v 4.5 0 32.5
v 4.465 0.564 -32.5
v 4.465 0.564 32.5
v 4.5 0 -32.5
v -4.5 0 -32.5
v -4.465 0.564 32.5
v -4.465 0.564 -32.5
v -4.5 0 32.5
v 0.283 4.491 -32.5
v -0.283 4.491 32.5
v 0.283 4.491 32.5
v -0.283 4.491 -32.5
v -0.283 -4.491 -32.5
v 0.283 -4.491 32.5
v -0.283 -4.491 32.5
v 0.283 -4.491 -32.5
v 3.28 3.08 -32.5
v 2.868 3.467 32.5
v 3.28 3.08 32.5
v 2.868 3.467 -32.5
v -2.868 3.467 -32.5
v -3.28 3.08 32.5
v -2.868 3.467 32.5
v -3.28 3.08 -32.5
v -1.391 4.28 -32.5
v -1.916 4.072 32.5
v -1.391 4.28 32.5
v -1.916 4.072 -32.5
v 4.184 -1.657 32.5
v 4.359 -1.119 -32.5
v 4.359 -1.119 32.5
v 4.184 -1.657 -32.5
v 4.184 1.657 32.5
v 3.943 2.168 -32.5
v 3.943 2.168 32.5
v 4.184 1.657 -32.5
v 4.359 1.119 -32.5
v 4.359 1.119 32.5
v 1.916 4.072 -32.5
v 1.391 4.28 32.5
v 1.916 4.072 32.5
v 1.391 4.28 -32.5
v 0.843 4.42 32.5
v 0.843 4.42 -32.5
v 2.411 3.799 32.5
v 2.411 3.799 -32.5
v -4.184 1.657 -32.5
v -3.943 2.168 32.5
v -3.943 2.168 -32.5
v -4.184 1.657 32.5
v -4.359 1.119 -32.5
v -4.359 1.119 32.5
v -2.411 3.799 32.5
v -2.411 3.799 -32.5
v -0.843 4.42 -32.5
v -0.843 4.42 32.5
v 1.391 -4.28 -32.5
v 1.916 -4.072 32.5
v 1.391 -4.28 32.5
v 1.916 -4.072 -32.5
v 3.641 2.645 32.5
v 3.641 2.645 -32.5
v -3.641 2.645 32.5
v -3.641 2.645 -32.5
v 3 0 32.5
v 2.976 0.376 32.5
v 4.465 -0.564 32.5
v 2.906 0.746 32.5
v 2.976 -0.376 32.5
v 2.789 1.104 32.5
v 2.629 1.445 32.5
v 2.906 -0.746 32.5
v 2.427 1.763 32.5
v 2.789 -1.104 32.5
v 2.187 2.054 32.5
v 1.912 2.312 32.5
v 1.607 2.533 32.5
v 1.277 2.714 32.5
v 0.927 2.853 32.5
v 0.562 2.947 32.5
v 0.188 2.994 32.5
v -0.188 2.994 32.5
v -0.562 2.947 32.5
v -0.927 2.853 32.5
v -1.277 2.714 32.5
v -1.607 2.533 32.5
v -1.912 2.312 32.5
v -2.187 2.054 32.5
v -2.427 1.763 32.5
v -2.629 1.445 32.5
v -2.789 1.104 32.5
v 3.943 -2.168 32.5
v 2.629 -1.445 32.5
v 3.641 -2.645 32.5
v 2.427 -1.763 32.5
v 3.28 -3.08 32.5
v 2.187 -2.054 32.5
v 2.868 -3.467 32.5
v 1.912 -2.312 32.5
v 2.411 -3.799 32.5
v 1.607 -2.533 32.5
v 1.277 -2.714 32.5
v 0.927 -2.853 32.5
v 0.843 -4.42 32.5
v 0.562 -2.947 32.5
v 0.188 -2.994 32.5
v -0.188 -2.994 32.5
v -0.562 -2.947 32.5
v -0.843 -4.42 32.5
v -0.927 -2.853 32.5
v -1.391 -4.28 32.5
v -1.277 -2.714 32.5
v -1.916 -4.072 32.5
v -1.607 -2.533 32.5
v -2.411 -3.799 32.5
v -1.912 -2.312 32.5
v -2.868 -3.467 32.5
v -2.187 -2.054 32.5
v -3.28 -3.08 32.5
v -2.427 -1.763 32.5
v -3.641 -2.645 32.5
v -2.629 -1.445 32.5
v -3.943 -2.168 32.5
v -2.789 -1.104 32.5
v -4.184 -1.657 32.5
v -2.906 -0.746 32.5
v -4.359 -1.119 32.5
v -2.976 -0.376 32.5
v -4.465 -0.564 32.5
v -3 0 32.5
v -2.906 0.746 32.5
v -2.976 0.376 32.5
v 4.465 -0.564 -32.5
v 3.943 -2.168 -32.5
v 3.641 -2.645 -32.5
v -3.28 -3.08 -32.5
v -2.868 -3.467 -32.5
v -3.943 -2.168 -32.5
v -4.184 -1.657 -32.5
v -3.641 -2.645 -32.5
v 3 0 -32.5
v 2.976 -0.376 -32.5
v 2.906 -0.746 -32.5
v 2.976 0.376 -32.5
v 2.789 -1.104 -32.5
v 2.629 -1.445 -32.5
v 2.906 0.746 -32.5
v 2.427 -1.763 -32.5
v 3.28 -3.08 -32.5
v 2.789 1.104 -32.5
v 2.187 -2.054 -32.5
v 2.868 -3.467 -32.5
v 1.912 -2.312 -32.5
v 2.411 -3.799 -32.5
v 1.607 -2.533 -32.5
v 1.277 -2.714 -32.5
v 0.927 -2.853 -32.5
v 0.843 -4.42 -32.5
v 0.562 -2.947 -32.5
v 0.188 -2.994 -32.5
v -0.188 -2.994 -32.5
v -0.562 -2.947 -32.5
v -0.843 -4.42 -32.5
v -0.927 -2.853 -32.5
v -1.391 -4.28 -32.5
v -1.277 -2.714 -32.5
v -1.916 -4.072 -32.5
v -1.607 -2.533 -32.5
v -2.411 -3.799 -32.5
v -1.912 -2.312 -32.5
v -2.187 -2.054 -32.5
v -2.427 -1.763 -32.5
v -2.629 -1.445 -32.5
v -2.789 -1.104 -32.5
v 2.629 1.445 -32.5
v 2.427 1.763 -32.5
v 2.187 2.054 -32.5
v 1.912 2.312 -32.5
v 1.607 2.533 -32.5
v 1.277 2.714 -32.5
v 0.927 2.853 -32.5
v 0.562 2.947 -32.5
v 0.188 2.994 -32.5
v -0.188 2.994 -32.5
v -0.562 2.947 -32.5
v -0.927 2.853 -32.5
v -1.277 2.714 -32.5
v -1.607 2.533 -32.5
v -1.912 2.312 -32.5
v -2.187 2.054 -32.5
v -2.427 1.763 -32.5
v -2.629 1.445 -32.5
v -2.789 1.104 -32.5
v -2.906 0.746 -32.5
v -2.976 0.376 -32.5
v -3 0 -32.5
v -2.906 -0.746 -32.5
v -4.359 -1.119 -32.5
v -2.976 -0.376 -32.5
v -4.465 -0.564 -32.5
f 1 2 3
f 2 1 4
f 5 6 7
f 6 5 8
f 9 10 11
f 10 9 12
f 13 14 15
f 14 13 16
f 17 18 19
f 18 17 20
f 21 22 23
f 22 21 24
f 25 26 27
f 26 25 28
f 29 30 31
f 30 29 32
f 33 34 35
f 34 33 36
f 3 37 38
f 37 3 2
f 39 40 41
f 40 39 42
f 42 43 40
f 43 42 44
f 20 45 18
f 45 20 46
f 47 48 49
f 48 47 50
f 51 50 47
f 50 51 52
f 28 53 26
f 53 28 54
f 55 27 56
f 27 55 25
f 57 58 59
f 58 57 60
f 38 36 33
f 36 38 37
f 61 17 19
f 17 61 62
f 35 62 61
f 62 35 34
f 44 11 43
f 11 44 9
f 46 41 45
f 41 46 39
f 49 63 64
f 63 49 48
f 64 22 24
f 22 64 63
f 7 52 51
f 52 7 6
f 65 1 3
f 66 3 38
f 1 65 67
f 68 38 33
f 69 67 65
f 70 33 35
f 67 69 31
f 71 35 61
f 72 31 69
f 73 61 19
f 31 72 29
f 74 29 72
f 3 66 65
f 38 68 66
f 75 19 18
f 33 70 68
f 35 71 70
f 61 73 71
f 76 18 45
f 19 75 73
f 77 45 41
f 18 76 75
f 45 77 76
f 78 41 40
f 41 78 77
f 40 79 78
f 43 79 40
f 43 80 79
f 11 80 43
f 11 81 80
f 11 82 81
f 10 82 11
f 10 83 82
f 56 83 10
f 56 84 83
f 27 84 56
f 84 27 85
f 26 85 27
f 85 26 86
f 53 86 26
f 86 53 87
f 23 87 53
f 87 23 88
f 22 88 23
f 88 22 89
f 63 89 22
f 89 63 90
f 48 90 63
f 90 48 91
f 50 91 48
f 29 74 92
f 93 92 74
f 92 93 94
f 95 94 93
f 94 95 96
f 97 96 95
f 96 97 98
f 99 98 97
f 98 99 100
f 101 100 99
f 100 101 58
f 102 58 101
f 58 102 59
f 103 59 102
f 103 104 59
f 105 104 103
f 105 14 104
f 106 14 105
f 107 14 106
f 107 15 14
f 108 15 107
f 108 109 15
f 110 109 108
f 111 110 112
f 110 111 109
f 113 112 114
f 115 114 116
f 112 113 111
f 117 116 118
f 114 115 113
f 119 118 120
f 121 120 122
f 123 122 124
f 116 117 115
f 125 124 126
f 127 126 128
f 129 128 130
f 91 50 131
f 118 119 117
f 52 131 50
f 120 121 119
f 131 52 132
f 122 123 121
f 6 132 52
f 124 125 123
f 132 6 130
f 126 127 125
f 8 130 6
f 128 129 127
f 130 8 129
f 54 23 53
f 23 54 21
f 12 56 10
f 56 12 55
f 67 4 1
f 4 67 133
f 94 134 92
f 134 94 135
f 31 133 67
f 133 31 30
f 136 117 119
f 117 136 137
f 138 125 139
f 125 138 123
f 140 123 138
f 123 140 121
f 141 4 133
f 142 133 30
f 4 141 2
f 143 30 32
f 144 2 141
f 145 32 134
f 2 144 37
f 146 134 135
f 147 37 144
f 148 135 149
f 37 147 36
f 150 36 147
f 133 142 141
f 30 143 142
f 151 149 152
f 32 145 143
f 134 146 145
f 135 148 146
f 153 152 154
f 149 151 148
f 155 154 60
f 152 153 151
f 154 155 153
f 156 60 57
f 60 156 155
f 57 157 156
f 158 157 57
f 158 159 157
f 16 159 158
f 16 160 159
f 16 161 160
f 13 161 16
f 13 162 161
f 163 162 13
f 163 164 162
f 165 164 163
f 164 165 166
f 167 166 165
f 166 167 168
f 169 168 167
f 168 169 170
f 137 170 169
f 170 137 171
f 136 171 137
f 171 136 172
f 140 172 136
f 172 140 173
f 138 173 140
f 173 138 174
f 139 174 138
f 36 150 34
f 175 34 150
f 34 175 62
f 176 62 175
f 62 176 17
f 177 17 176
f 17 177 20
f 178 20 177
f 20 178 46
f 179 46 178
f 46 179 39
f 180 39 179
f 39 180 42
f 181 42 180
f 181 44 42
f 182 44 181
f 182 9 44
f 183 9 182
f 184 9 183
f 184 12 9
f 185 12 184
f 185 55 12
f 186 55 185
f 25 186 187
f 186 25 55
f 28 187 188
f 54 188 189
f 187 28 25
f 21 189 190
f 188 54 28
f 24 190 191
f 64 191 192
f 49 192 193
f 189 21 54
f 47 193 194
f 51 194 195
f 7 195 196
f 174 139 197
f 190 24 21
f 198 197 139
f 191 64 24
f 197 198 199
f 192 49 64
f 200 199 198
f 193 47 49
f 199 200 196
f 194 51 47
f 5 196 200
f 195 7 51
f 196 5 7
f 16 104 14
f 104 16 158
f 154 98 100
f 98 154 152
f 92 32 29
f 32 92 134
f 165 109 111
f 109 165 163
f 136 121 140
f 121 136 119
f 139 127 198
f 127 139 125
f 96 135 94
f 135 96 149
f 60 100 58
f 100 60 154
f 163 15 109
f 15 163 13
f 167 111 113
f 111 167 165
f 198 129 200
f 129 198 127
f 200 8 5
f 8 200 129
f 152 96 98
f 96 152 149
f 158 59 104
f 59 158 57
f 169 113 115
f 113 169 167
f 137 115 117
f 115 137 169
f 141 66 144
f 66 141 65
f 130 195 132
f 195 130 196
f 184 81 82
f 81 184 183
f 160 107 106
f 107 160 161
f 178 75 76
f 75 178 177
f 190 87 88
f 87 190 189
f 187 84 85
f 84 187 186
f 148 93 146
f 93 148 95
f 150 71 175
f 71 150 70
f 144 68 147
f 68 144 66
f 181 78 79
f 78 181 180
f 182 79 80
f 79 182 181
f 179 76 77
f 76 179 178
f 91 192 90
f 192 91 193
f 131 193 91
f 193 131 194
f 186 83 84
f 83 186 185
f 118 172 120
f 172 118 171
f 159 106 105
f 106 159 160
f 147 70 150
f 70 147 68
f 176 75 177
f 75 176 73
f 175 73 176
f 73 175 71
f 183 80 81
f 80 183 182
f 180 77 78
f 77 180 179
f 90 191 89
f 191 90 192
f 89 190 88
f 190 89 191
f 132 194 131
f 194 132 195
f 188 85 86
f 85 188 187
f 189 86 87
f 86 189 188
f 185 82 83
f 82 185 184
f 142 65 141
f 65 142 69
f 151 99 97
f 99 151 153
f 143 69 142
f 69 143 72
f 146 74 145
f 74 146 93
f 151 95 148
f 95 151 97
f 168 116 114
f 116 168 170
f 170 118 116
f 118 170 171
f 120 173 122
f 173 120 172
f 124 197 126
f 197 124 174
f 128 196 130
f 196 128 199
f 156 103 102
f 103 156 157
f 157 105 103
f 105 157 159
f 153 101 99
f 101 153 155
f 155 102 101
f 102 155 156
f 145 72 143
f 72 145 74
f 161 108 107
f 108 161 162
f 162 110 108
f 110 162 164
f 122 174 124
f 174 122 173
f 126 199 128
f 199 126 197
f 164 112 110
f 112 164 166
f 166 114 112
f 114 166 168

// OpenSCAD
$fn = 50;


difference() {
	union() {
		translate(v = [0, 0, -32.5000000000]) {
			cylinder(h = 65, r = 4.5000000000);
		}
	}
	union() {
		translate(v = [0, 0, -100.0000000000]) {
			cylinder(h = 200, r = 3);
		}
	}
}
